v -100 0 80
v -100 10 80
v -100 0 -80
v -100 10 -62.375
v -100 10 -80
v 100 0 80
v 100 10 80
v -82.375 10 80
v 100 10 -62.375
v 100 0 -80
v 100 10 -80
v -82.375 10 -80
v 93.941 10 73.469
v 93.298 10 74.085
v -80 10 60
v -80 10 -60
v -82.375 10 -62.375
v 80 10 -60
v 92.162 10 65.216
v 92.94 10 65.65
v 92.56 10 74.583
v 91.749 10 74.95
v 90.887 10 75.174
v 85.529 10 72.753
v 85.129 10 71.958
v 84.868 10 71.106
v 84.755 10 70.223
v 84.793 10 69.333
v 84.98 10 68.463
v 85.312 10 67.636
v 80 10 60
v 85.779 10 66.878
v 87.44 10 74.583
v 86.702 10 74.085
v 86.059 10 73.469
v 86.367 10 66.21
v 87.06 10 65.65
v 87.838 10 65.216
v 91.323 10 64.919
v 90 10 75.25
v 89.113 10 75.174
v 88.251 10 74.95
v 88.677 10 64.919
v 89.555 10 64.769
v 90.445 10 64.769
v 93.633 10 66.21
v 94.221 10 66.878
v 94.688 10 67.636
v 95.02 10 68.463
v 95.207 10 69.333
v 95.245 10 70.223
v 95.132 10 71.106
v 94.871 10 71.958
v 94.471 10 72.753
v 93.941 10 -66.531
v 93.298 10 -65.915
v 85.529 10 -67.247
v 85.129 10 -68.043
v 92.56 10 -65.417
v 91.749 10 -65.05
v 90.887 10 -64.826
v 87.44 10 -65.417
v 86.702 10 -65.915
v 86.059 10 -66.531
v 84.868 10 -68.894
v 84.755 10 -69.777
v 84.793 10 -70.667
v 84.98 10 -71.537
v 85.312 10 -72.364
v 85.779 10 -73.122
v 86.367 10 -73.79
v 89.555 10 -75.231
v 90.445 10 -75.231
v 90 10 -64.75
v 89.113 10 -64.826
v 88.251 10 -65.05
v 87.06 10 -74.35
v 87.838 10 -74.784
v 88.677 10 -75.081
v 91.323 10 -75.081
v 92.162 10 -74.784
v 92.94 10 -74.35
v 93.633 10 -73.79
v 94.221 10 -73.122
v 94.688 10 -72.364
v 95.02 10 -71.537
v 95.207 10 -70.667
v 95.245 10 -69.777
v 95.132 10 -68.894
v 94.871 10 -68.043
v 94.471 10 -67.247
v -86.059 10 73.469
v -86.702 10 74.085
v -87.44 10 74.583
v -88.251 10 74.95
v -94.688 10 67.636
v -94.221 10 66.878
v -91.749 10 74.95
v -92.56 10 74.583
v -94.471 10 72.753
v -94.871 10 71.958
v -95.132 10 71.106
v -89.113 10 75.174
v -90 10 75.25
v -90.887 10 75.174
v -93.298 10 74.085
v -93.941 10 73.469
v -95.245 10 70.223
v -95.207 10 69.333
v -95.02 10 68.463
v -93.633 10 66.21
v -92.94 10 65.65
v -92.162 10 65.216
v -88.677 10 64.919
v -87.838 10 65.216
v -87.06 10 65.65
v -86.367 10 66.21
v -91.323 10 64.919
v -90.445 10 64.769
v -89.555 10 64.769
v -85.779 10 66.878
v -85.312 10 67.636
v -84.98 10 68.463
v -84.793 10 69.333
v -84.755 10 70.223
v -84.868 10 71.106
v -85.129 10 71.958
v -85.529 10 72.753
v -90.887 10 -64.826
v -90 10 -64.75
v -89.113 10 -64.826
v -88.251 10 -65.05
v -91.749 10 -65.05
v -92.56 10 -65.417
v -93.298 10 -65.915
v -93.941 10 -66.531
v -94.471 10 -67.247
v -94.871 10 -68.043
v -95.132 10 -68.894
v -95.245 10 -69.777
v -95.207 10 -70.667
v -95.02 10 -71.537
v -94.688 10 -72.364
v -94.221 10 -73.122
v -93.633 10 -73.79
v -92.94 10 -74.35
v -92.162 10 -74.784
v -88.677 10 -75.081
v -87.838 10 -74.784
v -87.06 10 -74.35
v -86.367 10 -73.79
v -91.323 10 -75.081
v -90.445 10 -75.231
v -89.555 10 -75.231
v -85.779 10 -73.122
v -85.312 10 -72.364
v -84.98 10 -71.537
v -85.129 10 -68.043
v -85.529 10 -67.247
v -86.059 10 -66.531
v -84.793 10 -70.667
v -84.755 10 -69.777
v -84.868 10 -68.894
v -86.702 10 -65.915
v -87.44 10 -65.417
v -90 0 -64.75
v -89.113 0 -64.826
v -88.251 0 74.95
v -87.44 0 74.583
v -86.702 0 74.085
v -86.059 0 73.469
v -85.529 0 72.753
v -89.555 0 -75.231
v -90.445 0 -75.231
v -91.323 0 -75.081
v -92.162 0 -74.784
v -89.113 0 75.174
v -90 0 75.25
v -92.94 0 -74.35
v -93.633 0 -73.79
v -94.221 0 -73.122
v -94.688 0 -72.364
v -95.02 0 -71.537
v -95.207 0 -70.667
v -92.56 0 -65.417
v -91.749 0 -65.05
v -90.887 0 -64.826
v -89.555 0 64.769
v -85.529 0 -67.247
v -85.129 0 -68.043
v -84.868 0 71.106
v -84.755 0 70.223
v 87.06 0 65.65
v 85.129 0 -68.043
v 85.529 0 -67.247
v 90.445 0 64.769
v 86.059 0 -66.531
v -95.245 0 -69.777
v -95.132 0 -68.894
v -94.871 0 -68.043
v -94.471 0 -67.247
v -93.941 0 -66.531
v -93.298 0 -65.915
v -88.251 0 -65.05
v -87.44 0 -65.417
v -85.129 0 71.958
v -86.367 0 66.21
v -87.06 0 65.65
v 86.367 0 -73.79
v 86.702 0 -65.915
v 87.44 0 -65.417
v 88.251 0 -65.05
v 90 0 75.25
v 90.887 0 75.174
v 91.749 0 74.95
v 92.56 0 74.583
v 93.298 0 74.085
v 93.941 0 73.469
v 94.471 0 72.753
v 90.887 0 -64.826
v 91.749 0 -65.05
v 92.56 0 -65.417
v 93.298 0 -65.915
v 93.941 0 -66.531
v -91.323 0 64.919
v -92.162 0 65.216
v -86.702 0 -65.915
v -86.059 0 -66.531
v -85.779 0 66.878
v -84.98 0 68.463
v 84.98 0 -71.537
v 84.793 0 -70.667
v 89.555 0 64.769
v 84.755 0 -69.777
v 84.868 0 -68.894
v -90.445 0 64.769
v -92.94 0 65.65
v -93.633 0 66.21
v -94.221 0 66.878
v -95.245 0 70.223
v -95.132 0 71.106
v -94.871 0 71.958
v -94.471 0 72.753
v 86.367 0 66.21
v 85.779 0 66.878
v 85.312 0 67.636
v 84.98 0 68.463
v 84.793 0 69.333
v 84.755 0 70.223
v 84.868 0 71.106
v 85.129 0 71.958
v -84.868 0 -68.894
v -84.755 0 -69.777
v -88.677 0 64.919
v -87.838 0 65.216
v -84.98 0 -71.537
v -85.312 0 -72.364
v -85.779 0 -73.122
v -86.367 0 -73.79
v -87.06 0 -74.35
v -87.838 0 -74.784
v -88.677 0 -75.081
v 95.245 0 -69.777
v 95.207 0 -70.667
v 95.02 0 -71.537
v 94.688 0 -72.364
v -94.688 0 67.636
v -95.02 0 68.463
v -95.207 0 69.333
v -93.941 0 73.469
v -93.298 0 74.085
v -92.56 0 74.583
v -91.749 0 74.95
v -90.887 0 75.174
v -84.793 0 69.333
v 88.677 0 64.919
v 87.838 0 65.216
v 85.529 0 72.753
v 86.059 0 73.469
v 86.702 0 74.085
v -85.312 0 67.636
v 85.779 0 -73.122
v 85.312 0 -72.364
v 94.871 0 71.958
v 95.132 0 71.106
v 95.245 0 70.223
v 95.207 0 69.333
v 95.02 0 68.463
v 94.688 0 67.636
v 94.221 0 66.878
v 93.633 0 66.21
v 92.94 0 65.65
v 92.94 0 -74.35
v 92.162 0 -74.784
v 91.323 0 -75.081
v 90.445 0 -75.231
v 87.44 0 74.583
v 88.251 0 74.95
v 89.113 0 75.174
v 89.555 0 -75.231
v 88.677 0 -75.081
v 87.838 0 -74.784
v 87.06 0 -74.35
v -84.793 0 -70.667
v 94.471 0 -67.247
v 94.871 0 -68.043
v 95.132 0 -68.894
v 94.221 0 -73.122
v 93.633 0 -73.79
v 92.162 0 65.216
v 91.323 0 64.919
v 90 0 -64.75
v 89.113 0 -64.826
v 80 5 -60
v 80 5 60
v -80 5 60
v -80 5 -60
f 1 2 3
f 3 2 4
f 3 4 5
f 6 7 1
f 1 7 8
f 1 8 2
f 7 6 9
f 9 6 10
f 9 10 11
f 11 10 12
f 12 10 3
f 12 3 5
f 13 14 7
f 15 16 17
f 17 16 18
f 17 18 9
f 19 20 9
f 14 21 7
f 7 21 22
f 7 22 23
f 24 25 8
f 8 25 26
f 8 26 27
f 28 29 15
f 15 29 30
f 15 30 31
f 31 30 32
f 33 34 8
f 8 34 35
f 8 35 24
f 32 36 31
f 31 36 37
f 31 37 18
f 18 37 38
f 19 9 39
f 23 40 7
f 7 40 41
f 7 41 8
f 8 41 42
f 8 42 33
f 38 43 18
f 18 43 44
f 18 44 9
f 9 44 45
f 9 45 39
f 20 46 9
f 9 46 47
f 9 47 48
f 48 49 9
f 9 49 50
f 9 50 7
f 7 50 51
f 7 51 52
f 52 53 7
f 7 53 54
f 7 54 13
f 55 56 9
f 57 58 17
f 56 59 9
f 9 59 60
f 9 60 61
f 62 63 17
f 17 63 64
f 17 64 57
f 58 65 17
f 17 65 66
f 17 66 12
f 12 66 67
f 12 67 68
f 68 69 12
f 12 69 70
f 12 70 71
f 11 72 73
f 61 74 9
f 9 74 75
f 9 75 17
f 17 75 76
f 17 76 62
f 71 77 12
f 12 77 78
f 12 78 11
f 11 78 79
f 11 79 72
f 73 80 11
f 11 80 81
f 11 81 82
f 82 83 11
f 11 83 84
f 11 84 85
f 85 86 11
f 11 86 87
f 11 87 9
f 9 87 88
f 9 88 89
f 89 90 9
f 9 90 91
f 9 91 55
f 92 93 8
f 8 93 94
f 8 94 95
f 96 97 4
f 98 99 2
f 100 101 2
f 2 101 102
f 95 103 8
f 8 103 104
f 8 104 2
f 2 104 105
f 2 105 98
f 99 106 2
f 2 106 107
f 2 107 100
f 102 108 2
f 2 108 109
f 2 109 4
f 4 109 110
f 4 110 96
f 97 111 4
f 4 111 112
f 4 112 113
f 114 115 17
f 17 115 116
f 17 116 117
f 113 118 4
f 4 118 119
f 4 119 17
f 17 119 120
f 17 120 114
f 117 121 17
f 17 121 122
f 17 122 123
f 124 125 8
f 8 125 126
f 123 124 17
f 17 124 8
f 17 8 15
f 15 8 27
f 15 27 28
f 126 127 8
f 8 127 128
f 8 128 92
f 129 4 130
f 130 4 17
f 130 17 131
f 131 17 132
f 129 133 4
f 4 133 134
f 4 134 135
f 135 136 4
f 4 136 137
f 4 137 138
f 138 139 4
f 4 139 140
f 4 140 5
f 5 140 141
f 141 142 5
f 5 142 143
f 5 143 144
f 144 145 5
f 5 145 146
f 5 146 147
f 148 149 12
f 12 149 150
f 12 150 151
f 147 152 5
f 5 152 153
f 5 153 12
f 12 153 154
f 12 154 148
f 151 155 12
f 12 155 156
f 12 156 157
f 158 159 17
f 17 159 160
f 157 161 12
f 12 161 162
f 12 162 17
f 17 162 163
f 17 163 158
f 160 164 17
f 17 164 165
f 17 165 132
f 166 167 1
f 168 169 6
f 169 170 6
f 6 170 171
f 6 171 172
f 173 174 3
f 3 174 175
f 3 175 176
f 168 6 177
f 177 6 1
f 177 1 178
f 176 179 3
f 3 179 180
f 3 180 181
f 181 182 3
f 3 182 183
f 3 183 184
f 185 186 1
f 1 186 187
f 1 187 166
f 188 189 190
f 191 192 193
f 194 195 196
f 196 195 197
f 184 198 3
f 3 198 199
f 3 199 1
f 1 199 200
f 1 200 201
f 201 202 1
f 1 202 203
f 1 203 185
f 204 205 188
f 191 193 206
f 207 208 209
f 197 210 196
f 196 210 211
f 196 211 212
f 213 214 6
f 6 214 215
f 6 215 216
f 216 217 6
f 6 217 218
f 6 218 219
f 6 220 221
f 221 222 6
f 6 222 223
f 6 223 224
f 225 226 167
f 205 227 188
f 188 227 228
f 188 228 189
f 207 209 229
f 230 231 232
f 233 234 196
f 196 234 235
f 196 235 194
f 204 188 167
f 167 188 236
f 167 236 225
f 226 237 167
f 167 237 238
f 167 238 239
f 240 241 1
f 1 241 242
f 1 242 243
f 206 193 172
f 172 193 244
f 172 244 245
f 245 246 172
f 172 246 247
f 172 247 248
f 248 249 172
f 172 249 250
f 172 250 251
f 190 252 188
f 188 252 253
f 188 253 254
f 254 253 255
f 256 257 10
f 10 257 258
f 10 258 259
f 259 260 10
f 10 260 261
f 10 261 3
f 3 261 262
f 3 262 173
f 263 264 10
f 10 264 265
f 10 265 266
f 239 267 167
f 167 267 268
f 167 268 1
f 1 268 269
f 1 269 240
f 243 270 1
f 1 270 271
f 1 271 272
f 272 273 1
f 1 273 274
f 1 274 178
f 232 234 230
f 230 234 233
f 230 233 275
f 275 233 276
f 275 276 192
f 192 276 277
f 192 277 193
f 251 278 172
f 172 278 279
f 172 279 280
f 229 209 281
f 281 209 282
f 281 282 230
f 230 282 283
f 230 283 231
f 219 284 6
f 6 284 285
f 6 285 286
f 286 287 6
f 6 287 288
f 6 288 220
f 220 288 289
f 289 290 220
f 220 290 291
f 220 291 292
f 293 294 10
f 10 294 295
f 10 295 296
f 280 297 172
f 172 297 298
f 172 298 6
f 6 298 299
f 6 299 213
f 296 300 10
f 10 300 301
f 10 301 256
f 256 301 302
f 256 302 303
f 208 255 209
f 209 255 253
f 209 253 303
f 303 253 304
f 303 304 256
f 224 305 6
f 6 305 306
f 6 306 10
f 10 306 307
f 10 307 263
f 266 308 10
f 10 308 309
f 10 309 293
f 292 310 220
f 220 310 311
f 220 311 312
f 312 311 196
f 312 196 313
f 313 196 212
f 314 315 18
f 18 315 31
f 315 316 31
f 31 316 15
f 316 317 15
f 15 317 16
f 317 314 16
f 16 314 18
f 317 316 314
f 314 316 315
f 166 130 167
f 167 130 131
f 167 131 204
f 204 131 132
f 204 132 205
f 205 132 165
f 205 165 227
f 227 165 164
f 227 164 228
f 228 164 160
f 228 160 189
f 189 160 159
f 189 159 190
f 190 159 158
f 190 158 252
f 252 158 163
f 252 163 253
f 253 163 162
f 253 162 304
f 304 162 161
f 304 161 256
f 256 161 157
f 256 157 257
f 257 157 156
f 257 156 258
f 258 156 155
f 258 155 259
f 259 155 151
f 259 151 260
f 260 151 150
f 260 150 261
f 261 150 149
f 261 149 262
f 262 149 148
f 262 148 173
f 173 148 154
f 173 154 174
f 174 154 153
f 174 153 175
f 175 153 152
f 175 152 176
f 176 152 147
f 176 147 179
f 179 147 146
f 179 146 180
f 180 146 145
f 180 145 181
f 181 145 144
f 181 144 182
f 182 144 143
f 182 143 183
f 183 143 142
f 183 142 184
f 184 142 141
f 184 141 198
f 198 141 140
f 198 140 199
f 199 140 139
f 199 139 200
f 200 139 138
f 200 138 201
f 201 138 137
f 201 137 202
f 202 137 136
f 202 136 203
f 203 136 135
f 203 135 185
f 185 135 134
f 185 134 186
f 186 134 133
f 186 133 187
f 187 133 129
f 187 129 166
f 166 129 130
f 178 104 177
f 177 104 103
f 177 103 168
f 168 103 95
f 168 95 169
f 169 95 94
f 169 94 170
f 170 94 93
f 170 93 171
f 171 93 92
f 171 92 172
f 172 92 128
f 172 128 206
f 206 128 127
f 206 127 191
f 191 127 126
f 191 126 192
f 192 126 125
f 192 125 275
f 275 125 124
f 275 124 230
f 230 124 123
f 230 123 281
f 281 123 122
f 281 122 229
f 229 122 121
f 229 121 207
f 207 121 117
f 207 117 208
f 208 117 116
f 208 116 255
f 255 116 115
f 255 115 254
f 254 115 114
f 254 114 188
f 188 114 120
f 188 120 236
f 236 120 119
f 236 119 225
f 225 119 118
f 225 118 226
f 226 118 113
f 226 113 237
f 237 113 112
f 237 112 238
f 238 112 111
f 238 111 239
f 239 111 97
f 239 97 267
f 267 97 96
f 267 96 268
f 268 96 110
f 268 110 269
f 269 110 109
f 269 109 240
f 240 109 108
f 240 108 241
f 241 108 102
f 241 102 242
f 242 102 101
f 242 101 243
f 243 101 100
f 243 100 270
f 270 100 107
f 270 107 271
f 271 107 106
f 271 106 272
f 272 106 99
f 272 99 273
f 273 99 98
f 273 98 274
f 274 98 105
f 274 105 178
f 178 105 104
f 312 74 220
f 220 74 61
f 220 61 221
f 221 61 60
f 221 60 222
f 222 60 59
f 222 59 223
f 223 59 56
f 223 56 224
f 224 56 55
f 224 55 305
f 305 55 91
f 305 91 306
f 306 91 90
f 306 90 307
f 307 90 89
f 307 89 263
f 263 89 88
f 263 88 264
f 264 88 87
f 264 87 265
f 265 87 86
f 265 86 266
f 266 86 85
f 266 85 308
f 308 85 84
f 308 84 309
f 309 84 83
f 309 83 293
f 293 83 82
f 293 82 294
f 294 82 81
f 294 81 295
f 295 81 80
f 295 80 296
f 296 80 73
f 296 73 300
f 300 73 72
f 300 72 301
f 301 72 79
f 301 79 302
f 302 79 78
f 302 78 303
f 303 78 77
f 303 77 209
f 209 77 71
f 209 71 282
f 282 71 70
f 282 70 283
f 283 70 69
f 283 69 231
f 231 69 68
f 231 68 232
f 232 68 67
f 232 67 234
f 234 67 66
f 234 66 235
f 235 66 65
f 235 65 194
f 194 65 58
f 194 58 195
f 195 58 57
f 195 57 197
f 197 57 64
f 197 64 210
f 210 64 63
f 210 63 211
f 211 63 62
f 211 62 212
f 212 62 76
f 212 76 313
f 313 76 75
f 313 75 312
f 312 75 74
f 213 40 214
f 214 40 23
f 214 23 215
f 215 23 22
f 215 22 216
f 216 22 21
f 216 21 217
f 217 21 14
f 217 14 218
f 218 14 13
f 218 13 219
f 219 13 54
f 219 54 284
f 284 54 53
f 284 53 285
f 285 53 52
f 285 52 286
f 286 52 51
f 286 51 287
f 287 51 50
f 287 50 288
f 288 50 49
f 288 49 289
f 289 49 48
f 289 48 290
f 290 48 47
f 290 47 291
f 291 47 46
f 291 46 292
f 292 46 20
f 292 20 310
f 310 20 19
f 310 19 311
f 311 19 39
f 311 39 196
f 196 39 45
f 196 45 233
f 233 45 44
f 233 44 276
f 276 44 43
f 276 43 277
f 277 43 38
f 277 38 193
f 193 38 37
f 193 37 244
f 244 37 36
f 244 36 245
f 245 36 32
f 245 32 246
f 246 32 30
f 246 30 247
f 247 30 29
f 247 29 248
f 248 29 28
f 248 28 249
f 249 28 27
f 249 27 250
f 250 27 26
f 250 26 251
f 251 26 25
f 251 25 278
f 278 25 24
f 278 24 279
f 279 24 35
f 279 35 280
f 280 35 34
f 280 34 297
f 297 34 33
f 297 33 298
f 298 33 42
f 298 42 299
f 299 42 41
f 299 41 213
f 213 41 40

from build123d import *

# Parameters (mm, degrees)
SKETCH1_W           = 200
SKETCH1_H           = 160
BOSS_EXTRUDE3_DEPTH = 10
SKETCH3_R           = 5.25
SKETCH3_W           = 160
SKETCH3_H           = 120
CUT_EXTRUDE2_DEPTH  = 5
SKETCH6_R           = 5.25
CUT_EXTRUDE4_DEPTH  = 129.16005618


with BuildPart() as part:
    # Sketch1 → Boss-Extrude3 (new body)
    with BuildSketch(Plane(origin=(0, 0, 0), x_dir=(1, 0, 0), z_dir=(0, 1, 0))):
        Rectangle(SKETCH1_W, SKETCH1_H)
    extrude(amount=BOSS_EXTRUDE3_DEPTH)

    # Sketch3 → Cut-Extrude2 (cut)
    with BuildSketch(Plane(origin=(0, 10, 0), x_dir=(1, 0, 0), z_dir=(0, 1, 0))):
        with Locations(Location((-90, 70, 0), (0, 0, 270))):
            Circle(SKETCH3_R)
        with Locations(Location((90, -70, 0), (0, 0, 270))):
            Circle(SKETCH3_R)
        with Locations(Location((90, 70, 0), (0, 0, 270))):
            Circle(SKETCH3_R)
        with Locations(Location((-90, -70, 0), (0, 0, 270))):
            Circle(SKETCH3_R)
        Rectangle(SKETCH3_W, SKETCH3_H)
    extrude(amount=-CUT_EXTRUDE2_DEPTH, mode=Mode.SUBTRACT)

    # Sketch6 → Cut-Extrude4 (cut, through all)
    with BuildSketch(Plane(origin=(0, 5, 0), x_dir=(1, 0, 0), z_dir=(0, 1, 0))):
        with Locations(Location((-90, 70, 0), (0, 0, 270))):
            Circle(SKETCH6_R)
        with Locations(Location((90, 70, 0), (0, 0, 270))):
            Circle(SKETCH6_R)
        with Locations(Location((90, -70, 0), (0, 0, 270))):
            Circle(SKETCH6_R)
        with Locations(Location((-90, -70, 0), (0, 0, 270))):
            Circle(SKETCH6_R)
    extrude(amount=-CUT_EXTRUDE4_DEPTH, mode=Mode.SUBTRACT)


solid = part.part
